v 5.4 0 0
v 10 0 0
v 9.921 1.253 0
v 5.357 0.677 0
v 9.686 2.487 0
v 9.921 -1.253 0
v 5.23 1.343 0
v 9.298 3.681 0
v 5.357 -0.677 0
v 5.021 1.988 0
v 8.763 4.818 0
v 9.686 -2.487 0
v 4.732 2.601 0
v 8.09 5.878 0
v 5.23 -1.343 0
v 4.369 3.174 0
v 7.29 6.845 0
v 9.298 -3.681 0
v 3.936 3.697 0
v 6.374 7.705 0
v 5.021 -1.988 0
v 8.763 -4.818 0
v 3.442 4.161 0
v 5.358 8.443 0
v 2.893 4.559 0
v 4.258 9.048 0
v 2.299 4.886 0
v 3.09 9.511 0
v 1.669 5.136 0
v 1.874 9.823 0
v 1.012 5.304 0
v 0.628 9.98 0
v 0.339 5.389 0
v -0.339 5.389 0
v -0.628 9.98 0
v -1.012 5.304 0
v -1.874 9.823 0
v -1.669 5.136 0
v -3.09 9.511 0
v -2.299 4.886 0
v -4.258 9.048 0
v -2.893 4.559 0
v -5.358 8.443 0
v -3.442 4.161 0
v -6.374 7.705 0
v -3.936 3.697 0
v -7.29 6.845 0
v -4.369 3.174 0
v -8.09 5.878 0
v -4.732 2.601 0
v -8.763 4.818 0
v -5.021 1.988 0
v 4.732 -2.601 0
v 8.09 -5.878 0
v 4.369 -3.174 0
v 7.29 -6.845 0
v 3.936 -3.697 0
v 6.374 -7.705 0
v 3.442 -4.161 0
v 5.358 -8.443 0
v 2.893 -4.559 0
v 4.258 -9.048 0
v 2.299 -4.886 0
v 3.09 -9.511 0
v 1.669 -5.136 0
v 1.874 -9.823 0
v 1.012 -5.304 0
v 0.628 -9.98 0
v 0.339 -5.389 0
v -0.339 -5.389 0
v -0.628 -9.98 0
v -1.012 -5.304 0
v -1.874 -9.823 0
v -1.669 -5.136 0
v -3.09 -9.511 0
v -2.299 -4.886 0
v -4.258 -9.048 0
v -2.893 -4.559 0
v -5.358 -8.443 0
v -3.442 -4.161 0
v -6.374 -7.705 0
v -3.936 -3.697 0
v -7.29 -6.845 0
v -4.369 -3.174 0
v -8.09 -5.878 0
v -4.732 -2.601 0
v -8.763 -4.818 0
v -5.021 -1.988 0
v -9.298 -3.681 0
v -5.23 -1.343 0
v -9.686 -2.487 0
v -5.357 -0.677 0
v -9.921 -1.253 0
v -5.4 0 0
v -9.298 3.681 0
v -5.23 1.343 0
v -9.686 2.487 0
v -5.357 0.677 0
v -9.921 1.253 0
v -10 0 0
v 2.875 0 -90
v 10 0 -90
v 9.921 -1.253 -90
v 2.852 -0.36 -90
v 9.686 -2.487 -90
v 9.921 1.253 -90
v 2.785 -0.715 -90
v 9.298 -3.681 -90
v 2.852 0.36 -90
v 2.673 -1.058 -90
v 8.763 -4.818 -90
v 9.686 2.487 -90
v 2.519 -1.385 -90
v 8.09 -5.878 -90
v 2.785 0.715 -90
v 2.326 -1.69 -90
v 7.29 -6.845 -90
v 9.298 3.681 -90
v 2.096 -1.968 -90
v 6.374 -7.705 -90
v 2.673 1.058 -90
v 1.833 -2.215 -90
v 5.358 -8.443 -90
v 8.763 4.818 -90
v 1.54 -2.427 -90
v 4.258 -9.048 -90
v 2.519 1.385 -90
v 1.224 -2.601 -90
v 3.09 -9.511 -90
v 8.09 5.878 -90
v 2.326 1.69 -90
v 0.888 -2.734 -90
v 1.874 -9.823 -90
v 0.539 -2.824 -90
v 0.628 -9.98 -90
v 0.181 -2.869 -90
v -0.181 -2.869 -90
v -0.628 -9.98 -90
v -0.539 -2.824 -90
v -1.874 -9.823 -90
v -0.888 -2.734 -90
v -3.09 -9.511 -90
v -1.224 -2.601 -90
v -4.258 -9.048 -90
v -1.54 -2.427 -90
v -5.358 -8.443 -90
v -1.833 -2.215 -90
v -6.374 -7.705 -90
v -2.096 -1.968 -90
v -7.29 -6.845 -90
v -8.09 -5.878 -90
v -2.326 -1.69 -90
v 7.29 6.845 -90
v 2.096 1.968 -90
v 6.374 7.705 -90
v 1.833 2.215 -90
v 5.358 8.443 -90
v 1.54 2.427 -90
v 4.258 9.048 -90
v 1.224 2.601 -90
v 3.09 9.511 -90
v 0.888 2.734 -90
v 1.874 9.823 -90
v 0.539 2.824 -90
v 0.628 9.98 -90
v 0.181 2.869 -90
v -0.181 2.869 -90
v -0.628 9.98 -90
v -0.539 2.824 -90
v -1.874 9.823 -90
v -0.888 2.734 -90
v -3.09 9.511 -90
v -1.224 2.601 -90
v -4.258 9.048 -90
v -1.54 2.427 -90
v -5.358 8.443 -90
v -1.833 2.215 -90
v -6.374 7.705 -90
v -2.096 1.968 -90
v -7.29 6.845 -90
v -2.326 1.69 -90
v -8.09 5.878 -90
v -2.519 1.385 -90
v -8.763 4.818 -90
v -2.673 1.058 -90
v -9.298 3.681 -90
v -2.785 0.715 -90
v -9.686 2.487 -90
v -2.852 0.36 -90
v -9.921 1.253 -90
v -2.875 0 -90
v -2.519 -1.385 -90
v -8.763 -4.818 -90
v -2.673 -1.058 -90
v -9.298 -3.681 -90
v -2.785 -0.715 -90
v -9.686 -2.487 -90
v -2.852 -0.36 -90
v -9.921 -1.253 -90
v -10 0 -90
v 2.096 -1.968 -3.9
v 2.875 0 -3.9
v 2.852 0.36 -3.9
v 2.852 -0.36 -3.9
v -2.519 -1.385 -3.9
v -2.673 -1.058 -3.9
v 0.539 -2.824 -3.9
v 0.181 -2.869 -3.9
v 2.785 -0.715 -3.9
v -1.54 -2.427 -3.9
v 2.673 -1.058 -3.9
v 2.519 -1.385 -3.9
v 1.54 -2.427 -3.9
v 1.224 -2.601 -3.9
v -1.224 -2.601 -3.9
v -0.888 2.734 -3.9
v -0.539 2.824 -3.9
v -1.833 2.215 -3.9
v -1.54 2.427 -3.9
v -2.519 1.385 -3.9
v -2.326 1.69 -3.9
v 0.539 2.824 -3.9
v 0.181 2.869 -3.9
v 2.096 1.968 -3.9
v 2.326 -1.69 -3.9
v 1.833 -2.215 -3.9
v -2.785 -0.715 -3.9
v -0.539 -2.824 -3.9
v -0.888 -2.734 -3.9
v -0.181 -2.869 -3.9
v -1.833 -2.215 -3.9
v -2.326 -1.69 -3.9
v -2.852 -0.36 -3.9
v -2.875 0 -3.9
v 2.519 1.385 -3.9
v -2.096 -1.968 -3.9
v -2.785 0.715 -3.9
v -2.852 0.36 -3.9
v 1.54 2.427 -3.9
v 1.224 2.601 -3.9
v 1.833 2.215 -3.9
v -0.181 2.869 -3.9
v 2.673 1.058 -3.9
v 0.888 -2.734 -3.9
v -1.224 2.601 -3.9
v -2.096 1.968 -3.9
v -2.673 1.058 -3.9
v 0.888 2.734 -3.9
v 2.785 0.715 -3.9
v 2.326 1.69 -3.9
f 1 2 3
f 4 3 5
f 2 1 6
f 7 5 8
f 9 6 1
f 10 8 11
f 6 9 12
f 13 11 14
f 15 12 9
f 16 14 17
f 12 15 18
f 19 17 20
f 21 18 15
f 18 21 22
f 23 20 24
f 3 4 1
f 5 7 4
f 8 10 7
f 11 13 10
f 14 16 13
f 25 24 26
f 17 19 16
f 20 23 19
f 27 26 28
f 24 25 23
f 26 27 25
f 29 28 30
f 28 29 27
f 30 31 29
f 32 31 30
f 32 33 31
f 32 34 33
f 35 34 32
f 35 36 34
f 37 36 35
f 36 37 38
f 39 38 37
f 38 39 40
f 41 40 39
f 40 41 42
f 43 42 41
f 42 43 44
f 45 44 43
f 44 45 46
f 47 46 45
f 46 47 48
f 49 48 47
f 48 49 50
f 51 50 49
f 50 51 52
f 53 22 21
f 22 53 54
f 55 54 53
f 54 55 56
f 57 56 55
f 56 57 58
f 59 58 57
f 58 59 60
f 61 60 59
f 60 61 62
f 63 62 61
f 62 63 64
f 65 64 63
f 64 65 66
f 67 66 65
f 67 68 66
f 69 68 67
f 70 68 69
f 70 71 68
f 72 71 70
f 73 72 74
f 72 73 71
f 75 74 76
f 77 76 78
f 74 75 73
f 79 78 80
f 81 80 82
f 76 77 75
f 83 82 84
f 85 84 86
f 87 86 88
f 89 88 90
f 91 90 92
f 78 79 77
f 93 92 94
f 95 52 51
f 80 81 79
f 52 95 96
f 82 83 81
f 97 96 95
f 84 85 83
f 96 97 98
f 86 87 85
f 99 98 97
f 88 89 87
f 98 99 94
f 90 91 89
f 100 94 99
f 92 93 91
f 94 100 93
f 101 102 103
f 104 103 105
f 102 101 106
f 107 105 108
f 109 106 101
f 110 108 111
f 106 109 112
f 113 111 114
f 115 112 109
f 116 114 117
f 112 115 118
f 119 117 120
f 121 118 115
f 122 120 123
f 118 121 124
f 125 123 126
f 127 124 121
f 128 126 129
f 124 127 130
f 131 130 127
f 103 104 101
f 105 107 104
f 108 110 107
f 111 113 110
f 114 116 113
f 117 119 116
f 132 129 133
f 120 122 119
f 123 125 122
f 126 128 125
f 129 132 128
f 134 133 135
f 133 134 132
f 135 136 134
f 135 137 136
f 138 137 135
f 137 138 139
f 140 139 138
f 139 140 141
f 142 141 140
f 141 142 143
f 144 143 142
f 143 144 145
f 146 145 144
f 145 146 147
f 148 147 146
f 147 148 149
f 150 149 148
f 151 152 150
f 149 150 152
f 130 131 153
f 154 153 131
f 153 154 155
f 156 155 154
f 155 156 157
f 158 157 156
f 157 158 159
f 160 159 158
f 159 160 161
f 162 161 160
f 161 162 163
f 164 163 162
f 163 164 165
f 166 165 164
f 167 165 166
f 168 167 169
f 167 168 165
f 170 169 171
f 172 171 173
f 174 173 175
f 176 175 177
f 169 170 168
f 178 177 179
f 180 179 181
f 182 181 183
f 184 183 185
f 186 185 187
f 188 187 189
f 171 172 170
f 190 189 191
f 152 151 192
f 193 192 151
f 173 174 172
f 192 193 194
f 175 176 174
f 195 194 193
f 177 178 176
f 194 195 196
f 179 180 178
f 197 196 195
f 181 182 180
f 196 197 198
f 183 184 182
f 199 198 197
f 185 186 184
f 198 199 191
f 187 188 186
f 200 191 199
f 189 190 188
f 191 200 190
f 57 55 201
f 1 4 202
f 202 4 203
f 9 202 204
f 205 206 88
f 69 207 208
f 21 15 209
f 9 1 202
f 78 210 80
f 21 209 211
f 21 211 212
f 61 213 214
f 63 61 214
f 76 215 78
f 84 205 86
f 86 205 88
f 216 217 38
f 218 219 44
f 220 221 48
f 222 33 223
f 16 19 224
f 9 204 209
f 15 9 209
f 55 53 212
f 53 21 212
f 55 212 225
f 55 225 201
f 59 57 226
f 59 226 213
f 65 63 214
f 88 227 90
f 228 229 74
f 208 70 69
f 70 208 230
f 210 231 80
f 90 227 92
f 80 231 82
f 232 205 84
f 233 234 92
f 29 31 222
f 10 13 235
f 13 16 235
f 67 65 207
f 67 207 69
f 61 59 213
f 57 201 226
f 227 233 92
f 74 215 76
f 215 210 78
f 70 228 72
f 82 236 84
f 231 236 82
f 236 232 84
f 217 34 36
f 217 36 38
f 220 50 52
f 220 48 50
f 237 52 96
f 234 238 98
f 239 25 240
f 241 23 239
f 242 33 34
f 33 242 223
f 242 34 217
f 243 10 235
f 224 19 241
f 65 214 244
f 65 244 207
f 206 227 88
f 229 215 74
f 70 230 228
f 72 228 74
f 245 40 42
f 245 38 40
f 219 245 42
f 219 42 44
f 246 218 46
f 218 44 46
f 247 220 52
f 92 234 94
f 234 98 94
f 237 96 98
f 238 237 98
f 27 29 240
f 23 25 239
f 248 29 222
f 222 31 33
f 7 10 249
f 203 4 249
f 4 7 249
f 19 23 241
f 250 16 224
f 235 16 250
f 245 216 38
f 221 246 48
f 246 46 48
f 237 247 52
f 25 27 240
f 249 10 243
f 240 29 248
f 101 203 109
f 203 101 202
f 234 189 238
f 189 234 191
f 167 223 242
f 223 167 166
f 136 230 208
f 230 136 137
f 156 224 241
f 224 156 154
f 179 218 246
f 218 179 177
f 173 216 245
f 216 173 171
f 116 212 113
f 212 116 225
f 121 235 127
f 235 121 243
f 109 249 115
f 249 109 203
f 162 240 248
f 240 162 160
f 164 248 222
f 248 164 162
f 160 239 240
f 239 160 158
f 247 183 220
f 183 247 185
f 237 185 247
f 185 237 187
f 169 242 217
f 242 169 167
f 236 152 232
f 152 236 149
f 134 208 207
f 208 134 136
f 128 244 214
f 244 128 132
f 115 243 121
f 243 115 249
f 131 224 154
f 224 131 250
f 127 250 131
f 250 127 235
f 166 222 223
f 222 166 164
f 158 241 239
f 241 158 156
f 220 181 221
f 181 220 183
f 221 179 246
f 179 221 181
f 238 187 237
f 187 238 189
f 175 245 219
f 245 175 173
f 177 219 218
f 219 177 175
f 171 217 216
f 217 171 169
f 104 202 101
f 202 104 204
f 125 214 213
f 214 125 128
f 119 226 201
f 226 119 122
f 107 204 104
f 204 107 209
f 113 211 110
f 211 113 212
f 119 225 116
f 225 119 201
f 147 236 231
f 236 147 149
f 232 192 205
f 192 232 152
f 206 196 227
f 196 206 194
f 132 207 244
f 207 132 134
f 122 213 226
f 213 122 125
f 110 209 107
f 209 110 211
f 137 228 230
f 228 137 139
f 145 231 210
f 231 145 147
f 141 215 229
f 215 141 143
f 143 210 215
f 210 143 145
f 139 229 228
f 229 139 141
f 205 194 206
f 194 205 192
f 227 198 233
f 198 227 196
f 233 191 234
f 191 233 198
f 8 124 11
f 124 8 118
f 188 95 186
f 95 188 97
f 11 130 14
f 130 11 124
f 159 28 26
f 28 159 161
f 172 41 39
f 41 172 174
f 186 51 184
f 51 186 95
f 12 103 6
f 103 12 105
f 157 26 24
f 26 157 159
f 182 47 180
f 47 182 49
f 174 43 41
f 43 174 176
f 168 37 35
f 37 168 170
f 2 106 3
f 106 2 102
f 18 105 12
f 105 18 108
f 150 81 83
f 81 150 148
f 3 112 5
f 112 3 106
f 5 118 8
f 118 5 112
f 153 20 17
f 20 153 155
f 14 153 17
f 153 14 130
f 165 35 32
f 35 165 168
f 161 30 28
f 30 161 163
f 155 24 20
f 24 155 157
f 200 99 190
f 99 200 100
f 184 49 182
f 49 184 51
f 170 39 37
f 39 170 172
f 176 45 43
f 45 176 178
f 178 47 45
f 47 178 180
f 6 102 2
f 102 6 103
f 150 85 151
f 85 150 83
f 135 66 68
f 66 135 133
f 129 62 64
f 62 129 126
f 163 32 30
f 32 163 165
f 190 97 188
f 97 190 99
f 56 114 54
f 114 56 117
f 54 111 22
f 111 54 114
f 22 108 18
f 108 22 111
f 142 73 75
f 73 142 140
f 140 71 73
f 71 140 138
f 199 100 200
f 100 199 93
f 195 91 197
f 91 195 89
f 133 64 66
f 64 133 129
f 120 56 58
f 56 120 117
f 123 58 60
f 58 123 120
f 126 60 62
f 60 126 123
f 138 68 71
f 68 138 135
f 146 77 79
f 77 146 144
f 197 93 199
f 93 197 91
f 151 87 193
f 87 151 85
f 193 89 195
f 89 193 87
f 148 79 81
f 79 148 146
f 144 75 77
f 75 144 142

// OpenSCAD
$fn = 50;


difference() {
	union() {
		translate(v = [0, 0, -90.0000000000]) {
			cylinder(h = 90, r = 10.0000000000);
		}
		cylinder(h = 0, r = 19.0000000000);
	}
	union() {
		translate(v = [0, 0, 0]) {
			rotate(a = [0, 0, 0]) {
				difference() {
					union() {
						#translate(v = [0, 0, -90.0000000000]) {
							cylinder(h = 90, r = 2.6000000000);
						}
						#translate(v = [0, 0, -3.9000000000]) {
							cylinder(h = 3.9000000000, r = 10.0000000000, r1 = 2.8750000000, r2 = 5.4000000000);
						}
						#translate(v = [0, 0, -90.0000000000]) {
							cylinder(h = 90, r = 2.8750000000);
						}
						#translate(v = [0, 0, -90.0000000000]) {
							cylinder(h = 90, r = 2.6000000000);
						}
					}
					union();
				}
			}
		}
	}
}
